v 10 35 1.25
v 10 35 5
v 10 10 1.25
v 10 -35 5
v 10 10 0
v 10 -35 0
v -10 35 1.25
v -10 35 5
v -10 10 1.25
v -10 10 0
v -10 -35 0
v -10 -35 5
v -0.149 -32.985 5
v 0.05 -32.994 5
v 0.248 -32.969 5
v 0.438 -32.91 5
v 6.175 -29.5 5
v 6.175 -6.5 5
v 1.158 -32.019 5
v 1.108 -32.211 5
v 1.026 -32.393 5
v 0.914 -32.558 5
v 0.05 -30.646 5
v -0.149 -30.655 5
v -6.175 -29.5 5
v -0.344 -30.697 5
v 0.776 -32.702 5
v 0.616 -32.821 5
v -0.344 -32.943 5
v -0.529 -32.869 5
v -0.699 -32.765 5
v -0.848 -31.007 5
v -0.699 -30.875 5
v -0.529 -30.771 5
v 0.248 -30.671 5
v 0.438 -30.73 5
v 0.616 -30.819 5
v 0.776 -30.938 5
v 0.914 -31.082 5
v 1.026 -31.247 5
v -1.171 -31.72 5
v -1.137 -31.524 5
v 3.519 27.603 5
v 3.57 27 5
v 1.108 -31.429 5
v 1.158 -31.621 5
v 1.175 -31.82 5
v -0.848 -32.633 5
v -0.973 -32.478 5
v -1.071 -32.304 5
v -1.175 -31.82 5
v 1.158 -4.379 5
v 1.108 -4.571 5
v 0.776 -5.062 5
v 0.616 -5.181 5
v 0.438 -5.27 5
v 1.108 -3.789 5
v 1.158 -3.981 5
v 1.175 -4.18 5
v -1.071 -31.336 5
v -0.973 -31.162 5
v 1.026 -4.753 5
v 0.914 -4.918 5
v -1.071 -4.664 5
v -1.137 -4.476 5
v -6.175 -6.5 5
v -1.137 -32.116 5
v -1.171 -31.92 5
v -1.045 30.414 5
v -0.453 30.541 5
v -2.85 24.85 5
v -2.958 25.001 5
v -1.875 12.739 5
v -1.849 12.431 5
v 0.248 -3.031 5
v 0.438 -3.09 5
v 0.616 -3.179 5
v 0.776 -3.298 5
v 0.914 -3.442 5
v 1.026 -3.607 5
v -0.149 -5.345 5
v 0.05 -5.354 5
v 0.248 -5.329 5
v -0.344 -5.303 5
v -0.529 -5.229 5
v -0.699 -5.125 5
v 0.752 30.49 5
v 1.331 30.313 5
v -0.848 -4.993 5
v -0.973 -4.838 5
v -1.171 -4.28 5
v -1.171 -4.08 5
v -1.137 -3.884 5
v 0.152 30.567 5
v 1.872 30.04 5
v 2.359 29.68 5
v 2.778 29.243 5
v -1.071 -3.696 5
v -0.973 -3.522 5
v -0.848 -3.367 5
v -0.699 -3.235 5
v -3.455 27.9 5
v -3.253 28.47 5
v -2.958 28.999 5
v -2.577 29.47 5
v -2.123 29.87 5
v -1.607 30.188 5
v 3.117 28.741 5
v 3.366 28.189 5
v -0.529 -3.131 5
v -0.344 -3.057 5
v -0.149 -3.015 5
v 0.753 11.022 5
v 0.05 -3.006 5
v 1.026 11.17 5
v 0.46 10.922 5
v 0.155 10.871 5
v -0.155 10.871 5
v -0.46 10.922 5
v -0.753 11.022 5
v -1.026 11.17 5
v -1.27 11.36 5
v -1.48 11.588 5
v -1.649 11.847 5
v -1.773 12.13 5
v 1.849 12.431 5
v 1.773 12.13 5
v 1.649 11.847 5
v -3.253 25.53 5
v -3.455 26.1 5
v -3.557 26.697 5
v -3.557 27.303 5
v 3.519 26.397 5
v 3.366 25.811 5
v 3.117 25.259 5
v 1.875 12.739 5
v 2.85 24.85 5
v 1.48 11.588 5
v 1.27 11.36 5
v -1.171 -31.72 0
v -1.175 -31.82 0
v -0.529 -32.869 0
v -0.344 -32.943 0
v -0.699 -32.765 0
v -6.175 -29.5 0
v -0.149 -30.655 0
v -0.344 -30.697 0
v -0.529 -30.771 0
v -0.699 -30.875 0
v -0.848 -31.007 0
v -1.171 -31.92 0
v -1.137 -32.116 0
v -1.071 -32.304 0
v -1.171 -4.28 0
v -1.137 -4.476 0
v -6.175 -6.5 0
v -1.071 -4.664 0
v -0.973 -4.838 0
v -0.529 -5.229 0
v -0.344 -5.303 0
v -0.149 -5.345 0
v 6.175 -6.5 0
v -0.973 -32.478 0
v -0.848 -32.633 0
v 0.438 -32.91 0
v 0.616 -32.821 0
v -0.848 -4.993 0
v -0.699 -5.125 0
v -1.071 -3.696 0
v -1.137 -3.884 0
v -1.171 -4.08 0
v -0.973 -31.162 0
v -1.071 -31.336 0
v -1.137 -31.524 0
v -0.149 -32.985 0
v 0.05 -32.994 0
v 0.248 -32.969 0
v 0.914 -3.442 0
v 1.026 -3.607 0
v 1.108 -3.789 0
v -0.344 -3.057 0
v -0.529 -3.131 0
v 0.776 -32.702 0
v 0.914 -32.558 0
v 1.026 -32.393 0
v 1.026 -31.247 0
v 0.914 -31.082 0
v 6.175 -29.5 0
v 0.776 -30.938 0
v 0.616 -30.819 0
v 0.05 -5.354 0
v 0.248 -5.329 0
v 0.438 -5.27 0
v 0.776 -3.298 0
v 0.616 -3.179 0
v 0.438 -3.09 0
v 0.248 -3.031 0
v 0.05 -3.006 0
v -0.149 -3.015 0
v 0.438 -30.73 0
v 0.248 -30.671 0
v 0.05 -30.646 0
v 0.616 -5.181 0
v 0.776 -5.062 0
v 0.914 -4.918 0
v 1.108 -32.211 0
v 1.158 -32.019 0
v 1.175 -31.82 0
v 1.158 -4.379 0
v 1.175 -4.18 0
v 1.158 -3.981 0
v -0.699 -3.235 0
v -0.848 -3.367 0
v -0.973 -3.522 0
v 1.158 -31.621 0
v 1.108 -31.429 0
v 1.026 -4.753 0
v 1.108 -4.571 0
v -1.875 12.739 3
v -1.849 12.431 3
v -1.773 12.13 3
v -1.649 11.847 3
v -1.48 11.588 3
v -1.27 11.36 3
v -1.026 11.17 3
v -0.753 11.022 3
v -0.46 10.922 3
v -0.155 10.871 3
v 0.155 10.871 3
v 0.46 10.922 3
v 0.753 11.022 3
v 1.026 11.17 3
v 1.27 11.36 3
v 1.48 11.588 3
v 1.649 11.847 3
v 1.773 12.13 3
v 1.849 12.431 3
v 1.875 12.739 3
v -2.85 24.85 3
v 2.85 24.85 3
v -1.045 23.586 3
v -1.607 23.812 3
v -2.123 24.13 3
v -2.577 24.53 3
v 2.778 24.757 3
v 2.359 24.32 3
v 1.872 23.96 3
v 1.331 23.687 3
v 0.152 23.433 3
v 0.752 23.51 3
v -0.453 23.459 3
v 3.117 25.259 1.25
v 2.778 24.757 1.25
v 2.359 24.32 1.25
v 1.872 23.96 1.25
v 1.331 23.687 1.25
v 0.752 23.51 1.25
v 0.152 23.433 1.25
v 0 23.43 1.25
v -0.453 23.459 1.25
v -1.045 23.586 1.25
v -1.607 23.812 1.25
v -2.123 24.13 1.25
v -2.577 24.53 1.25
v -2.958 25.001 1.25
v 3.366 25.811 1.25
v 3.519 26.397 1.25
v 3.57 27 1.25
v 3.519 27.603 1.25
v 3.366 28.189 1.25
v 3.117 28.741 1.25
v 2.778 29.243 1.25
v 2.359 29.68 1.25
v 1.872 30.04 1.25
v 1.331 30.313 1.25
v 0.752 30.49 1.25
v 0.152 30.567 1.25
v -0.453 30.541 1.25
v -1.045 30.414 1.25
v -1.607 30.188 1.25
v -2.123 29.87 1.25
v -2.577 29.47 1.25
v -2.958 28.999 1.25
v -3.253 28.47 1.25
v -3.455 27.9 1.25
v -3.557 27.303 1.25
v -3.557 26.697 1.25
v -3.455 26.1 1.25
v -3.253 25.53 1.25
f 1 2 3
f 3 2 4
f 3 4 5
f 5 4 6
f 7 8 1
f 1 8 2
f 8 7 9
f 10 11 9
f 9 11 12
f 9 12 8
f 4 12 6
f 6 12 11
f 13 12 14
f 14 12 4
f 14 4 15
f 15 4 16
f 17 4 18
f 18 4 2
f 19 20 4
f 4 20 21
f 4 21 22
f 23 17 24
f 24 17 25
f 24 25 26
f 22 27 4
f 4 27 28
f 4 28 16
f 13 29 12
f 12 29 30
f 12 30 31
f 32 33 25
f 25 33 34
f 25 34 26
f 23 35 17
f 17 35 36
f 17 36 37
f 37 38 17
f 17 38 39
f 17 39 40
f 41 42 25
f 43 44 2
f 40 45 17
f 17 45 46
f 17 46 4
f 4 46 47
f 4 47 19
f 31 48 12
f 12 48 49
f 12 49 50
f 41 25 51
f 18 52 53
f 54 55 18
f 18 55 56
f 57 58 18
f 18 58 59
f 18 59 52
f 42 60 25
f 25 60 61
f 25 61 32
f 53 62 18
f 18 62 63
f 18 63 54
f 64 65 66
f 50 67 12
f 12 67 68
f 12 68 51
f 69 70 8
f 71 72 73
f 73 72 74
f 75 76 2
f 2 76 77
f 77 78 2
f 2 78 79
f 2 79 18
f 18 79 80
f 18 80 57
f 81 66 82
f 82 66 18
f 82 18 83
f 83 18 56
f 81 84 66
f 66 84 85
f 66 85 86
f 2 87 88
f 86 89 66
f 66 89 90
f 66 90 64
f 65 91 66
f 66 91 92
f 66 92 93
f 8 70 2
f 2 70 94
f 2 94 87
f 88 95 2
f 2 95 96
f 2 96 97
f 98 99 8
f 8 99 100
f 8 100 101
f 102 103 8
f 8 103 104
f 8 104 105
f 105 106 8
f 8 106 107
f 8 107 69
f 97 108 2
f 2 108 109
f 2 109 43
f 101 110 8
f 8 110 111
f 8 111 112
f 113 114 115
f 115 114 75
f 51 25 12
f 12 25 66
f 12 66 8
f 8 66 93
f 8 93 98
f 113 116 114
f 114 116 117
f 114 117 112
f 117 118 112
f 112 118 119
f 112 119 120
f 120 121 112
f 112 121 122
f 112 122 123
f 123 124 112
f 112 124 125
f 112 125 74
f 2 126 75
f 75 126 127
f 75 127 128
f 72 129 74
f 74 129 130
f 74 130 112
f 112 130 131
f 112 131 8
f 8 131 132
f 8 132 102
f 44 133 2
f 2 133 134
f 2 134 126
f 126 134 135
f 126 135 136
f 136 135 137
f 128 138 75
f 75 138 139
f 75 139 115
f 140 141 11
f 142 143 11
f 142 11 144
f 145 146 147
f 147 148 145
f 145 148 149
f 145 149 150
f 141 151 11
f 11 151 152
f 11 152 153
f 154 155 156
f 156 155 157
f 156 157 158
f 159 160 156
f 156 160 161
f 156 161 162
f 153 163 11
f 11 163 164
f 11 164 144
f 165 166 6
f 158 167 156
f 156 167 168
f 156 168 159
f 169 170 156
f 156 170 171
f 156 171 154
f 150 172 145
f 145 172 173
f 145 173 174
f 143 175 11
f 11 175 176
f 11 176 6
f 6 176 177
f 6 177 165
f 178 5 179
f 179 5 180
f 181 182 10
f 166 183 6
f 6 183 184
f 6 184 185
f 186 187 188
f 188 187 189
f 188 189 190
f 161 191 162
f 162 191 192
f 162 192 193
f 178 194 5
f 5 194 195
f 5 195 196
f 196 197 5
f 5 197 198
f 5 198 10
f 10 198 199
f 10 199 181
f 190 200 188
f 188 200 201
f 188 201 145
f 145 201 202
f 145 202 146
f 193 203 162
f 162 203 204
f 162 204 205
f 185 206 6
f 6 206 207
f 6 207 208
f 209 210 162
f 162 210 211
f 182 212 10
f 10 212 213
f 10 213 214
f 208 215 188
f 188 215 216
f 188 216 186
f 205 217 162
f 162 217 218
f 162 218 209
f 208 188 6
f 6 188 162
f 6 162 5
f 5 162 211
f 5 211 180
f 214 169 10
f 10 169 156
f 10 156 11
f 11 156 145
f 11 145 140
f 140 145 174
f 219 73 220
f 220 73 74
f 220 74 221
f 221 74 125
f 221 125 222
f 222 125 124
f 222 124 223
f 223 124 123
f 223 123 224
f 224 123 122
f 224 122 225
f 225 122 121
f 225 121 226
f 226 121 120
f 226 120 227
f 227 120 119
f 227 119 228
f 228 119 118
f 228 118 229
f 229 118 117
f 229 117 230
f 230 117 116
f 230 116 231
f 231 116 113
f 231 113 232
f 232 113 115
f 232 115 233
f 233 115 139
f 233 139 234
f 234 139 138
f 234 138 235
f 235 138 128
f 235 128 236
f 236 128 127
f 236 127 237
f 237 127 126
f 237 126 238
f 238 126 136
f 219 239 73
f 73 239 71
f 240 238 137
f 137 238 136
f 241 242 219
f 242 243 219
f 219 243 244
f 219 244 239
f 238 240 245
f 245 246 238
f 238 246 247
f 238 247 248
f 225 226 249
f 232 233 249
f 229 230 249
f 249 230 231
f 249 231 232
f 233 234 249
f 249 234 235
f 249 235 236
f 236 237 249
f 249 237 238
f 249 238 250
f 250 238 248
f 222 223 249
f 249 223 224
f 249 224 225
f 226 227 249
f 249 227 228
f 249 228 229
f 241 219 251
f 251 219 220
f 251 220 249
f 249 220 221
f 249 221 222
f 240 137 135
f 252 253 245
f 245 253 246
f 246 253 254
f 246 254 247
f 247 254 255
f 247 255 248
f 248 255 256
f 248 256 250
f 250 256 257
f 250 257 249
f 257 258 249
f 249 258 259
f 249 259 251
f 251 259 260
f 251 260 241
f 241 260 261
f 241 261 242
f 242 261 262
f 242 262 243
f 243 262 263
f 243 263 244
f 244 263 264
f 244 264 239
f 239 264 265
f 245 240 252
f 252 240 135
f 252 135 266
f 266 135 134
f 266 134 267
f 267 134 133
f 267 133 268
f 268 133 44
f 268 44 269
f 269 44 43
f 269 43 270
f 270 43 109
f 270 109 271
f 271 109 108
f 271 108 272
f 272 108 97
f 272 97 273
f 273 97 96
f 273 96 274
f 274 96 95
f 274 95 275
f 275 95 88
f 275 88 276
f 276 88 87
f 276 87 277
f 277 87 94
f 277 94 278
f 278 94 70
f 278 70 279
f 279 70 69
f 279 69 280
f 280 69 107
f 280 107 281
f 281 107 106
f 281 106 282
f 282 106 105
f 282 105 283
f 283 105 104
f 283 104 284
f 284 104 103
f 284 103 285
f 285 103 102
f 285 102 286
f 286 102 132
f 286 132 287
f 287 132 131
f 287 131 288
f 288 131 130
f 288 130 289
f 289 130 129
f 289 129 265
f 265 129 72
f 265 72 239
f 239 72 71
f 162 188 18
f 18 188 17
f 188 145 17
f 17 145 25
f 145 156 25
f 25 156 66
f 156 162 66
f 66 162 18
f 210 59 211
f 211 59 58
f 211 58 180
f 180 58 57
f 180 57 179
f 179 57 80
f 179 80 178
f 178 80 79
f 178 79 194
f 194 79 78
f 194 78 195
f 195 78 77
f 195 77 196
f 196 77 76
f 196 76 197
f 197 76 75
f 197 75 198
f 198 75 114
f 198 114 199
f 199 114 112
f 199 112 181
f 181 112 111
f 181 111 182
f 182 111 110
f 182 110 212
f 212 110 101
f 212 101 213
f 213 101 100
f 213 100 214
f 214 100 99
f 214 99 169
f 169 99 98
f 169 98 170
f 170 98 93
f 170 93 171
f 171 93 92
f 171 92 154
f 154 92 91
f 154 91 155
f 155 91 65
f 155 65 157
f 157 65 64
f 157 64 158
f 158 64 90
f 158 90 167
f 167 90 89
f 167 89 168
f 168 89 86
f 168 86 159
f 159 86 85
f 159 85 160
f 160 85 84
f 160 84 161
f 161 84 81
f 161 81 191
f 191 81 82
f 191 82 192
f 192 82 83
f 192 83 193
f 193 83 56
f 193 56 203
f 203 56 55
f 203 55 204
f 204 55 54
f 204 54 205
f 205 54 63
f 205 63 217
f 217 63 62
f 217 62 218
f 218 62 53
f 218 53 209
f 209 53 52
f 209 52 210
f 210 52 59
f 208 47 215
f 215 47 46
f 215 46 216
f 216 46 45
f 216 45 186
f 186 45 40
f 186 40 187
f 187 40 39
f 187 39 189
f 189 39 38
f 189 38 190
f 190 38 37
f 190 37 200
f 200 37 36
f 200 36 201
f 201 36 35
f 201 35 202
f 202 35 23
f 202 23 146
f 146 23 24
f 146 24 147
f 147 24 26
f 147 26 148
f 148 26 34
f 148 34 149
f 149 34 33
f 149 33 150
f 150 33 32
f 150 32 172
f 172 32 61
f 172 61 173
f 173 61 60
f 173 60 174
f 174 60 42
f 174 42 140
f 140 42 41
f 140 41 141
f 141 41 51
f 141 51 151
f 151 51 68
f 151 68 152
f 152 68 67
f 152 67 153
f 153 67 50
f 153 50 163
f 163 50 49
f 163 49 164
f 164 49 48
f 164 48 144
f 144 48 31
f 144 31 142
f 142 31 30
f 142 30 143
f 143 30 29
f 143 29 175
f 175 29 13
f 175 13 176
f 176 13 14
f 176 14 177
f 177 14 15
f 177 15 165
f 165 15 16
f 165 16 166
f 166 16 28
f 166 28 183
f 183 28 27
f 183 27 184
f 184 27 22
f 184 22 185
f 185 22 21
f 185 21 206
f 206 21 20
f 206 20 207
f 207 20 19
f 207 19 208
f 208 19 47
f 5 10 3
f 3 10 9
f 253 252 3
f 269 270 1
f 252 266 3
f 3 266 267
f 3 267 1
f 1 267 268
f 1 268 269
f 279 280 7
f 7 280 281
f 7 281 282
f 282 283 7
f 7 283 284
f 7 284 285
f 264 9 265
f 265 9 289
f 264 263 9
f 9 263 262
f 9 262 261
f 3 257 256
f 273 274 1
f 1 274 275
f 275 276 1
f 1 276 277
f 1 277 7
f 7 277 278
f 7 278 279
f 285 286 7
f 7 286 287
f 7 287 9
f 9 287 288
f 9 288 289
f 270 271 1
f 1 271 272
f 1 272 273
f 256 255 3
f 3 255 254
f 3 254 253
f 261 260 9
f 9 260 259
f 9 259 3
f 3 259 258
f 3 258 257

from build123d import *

# Parameters (mm, degrees)
SKETCH3_W           = 20
SKETCH3_H           = 70
BOSS_EXTRUDE3_DEPTH = 5
CUT_EXTRUDE2_DEPTH  = 2
SKETCH6_R           = 3.57
CUT_EXTRUDE3_DEPTH  = 3
SKETCH7_R           = 1.175
SKETCH7_W           = 12.35
SKETCH7_H           = 23
CUT_EXTRUDE4_DEPTH  = 5
SKETCH8_W           = 1.25
SKETCH8_H           = 25
CUT_EXTRUDE5_DEPTH  = 30


with BuildPart() as part:
    # Sketch3 → Boss-Extrude3 (new body)
    with BuildSketch(Plane.XY):
        Rectangle(SKETCH3_W, SKETCH3_H)
    extrude(amount=BOSS_EXTRUDE3_DEPTH)

    # Sketch4 → Cut-Extrude2 (cut)
    with BuildSketch(Plane.XY.offset(5)):
        with BuildLine():
            Line((-2.85, 24.850023256), (-1.875, 12.739206809))
            Line((-1.875, 12.739206809), (1.875, 12.739206809))
            Line((1.875, 12.739206809), (2.85, 24.850023256))
            ThreePointArc((2.85, 24.850023256), (0, 23.43), (-2.85, 24.850023256))
        make_face()
        with BuildLine():
            Line((1.875, 12.739206809), (-1.875, 12.739206809))
            ThreePointArc((-1.875, 12.739206809), (0, 10.864206809), (1.875, 12.739206809))
        make_face()
        with BuildLine():
            ThreePointArc((3.57, 27), (-1.133666618, 30.385217866), (-2.85, 24.850023256))
            Line((-2.85, 24.850023256), (2.85, 24.850023256))
            ThreePointArc((2.85, 24.850023256), (3.385217866, 25.866333382), (3.57, 27))
        make_face()
        with BuildLine():
            Line((2.85, 24.850023256), (-2.85, 24.850023256))
            ThreePointArc((-2.85, 24.850023256), (0, 23.43), (2.85, 24.850023256))
        make_face()
    extrude(amount=-CUT_EXTRUDE2_DEPTH, mode=Mode.SUBTRACT)

    # Sketch6 → Cut-Extrude3 (cut)
    with BuildSketch(Plane.XY.offset(3)):
        with Locations((0, 27)):
            Circle(SKETCH6_R)
    extrude(amount=-CUT_EXTRUDE3_DEPTH, mode=Mode.SUBTRACT)

    # Sketch7 → Cut-Extrude4 (cut)
    with BuildSketch(Plane.XY.offset(5)):
        with Locations((0, -4.18)):
            Circle(SKETCH7_R)
        with Locations((0, -31.82)):
            Circle(SKETCH7_R)
        with Locations((0, -18)):
            Rectangle(SKETCH7_W, SKETCH7_H)
    extrude(amount=-CUT_EXTRUDE4_DEPTH, mode=Mode.SUBTRACT)

    # Sketch8 → Cut-Extrude5 (cut)
    with BuildSketch(Plane(origin=(10, 0, 0), x_dir=(0, 0, -1), z_dir=(1, 0, 0))):
        with Locations((-0.625, 22.5)):
            Rectangle(SKETCH8_W, SKETCH8_H)
    extrude(amount=-CUT_EXTRUDE5_DEPTH, mode=Mode.SUBTRACT)


solid = part.part
